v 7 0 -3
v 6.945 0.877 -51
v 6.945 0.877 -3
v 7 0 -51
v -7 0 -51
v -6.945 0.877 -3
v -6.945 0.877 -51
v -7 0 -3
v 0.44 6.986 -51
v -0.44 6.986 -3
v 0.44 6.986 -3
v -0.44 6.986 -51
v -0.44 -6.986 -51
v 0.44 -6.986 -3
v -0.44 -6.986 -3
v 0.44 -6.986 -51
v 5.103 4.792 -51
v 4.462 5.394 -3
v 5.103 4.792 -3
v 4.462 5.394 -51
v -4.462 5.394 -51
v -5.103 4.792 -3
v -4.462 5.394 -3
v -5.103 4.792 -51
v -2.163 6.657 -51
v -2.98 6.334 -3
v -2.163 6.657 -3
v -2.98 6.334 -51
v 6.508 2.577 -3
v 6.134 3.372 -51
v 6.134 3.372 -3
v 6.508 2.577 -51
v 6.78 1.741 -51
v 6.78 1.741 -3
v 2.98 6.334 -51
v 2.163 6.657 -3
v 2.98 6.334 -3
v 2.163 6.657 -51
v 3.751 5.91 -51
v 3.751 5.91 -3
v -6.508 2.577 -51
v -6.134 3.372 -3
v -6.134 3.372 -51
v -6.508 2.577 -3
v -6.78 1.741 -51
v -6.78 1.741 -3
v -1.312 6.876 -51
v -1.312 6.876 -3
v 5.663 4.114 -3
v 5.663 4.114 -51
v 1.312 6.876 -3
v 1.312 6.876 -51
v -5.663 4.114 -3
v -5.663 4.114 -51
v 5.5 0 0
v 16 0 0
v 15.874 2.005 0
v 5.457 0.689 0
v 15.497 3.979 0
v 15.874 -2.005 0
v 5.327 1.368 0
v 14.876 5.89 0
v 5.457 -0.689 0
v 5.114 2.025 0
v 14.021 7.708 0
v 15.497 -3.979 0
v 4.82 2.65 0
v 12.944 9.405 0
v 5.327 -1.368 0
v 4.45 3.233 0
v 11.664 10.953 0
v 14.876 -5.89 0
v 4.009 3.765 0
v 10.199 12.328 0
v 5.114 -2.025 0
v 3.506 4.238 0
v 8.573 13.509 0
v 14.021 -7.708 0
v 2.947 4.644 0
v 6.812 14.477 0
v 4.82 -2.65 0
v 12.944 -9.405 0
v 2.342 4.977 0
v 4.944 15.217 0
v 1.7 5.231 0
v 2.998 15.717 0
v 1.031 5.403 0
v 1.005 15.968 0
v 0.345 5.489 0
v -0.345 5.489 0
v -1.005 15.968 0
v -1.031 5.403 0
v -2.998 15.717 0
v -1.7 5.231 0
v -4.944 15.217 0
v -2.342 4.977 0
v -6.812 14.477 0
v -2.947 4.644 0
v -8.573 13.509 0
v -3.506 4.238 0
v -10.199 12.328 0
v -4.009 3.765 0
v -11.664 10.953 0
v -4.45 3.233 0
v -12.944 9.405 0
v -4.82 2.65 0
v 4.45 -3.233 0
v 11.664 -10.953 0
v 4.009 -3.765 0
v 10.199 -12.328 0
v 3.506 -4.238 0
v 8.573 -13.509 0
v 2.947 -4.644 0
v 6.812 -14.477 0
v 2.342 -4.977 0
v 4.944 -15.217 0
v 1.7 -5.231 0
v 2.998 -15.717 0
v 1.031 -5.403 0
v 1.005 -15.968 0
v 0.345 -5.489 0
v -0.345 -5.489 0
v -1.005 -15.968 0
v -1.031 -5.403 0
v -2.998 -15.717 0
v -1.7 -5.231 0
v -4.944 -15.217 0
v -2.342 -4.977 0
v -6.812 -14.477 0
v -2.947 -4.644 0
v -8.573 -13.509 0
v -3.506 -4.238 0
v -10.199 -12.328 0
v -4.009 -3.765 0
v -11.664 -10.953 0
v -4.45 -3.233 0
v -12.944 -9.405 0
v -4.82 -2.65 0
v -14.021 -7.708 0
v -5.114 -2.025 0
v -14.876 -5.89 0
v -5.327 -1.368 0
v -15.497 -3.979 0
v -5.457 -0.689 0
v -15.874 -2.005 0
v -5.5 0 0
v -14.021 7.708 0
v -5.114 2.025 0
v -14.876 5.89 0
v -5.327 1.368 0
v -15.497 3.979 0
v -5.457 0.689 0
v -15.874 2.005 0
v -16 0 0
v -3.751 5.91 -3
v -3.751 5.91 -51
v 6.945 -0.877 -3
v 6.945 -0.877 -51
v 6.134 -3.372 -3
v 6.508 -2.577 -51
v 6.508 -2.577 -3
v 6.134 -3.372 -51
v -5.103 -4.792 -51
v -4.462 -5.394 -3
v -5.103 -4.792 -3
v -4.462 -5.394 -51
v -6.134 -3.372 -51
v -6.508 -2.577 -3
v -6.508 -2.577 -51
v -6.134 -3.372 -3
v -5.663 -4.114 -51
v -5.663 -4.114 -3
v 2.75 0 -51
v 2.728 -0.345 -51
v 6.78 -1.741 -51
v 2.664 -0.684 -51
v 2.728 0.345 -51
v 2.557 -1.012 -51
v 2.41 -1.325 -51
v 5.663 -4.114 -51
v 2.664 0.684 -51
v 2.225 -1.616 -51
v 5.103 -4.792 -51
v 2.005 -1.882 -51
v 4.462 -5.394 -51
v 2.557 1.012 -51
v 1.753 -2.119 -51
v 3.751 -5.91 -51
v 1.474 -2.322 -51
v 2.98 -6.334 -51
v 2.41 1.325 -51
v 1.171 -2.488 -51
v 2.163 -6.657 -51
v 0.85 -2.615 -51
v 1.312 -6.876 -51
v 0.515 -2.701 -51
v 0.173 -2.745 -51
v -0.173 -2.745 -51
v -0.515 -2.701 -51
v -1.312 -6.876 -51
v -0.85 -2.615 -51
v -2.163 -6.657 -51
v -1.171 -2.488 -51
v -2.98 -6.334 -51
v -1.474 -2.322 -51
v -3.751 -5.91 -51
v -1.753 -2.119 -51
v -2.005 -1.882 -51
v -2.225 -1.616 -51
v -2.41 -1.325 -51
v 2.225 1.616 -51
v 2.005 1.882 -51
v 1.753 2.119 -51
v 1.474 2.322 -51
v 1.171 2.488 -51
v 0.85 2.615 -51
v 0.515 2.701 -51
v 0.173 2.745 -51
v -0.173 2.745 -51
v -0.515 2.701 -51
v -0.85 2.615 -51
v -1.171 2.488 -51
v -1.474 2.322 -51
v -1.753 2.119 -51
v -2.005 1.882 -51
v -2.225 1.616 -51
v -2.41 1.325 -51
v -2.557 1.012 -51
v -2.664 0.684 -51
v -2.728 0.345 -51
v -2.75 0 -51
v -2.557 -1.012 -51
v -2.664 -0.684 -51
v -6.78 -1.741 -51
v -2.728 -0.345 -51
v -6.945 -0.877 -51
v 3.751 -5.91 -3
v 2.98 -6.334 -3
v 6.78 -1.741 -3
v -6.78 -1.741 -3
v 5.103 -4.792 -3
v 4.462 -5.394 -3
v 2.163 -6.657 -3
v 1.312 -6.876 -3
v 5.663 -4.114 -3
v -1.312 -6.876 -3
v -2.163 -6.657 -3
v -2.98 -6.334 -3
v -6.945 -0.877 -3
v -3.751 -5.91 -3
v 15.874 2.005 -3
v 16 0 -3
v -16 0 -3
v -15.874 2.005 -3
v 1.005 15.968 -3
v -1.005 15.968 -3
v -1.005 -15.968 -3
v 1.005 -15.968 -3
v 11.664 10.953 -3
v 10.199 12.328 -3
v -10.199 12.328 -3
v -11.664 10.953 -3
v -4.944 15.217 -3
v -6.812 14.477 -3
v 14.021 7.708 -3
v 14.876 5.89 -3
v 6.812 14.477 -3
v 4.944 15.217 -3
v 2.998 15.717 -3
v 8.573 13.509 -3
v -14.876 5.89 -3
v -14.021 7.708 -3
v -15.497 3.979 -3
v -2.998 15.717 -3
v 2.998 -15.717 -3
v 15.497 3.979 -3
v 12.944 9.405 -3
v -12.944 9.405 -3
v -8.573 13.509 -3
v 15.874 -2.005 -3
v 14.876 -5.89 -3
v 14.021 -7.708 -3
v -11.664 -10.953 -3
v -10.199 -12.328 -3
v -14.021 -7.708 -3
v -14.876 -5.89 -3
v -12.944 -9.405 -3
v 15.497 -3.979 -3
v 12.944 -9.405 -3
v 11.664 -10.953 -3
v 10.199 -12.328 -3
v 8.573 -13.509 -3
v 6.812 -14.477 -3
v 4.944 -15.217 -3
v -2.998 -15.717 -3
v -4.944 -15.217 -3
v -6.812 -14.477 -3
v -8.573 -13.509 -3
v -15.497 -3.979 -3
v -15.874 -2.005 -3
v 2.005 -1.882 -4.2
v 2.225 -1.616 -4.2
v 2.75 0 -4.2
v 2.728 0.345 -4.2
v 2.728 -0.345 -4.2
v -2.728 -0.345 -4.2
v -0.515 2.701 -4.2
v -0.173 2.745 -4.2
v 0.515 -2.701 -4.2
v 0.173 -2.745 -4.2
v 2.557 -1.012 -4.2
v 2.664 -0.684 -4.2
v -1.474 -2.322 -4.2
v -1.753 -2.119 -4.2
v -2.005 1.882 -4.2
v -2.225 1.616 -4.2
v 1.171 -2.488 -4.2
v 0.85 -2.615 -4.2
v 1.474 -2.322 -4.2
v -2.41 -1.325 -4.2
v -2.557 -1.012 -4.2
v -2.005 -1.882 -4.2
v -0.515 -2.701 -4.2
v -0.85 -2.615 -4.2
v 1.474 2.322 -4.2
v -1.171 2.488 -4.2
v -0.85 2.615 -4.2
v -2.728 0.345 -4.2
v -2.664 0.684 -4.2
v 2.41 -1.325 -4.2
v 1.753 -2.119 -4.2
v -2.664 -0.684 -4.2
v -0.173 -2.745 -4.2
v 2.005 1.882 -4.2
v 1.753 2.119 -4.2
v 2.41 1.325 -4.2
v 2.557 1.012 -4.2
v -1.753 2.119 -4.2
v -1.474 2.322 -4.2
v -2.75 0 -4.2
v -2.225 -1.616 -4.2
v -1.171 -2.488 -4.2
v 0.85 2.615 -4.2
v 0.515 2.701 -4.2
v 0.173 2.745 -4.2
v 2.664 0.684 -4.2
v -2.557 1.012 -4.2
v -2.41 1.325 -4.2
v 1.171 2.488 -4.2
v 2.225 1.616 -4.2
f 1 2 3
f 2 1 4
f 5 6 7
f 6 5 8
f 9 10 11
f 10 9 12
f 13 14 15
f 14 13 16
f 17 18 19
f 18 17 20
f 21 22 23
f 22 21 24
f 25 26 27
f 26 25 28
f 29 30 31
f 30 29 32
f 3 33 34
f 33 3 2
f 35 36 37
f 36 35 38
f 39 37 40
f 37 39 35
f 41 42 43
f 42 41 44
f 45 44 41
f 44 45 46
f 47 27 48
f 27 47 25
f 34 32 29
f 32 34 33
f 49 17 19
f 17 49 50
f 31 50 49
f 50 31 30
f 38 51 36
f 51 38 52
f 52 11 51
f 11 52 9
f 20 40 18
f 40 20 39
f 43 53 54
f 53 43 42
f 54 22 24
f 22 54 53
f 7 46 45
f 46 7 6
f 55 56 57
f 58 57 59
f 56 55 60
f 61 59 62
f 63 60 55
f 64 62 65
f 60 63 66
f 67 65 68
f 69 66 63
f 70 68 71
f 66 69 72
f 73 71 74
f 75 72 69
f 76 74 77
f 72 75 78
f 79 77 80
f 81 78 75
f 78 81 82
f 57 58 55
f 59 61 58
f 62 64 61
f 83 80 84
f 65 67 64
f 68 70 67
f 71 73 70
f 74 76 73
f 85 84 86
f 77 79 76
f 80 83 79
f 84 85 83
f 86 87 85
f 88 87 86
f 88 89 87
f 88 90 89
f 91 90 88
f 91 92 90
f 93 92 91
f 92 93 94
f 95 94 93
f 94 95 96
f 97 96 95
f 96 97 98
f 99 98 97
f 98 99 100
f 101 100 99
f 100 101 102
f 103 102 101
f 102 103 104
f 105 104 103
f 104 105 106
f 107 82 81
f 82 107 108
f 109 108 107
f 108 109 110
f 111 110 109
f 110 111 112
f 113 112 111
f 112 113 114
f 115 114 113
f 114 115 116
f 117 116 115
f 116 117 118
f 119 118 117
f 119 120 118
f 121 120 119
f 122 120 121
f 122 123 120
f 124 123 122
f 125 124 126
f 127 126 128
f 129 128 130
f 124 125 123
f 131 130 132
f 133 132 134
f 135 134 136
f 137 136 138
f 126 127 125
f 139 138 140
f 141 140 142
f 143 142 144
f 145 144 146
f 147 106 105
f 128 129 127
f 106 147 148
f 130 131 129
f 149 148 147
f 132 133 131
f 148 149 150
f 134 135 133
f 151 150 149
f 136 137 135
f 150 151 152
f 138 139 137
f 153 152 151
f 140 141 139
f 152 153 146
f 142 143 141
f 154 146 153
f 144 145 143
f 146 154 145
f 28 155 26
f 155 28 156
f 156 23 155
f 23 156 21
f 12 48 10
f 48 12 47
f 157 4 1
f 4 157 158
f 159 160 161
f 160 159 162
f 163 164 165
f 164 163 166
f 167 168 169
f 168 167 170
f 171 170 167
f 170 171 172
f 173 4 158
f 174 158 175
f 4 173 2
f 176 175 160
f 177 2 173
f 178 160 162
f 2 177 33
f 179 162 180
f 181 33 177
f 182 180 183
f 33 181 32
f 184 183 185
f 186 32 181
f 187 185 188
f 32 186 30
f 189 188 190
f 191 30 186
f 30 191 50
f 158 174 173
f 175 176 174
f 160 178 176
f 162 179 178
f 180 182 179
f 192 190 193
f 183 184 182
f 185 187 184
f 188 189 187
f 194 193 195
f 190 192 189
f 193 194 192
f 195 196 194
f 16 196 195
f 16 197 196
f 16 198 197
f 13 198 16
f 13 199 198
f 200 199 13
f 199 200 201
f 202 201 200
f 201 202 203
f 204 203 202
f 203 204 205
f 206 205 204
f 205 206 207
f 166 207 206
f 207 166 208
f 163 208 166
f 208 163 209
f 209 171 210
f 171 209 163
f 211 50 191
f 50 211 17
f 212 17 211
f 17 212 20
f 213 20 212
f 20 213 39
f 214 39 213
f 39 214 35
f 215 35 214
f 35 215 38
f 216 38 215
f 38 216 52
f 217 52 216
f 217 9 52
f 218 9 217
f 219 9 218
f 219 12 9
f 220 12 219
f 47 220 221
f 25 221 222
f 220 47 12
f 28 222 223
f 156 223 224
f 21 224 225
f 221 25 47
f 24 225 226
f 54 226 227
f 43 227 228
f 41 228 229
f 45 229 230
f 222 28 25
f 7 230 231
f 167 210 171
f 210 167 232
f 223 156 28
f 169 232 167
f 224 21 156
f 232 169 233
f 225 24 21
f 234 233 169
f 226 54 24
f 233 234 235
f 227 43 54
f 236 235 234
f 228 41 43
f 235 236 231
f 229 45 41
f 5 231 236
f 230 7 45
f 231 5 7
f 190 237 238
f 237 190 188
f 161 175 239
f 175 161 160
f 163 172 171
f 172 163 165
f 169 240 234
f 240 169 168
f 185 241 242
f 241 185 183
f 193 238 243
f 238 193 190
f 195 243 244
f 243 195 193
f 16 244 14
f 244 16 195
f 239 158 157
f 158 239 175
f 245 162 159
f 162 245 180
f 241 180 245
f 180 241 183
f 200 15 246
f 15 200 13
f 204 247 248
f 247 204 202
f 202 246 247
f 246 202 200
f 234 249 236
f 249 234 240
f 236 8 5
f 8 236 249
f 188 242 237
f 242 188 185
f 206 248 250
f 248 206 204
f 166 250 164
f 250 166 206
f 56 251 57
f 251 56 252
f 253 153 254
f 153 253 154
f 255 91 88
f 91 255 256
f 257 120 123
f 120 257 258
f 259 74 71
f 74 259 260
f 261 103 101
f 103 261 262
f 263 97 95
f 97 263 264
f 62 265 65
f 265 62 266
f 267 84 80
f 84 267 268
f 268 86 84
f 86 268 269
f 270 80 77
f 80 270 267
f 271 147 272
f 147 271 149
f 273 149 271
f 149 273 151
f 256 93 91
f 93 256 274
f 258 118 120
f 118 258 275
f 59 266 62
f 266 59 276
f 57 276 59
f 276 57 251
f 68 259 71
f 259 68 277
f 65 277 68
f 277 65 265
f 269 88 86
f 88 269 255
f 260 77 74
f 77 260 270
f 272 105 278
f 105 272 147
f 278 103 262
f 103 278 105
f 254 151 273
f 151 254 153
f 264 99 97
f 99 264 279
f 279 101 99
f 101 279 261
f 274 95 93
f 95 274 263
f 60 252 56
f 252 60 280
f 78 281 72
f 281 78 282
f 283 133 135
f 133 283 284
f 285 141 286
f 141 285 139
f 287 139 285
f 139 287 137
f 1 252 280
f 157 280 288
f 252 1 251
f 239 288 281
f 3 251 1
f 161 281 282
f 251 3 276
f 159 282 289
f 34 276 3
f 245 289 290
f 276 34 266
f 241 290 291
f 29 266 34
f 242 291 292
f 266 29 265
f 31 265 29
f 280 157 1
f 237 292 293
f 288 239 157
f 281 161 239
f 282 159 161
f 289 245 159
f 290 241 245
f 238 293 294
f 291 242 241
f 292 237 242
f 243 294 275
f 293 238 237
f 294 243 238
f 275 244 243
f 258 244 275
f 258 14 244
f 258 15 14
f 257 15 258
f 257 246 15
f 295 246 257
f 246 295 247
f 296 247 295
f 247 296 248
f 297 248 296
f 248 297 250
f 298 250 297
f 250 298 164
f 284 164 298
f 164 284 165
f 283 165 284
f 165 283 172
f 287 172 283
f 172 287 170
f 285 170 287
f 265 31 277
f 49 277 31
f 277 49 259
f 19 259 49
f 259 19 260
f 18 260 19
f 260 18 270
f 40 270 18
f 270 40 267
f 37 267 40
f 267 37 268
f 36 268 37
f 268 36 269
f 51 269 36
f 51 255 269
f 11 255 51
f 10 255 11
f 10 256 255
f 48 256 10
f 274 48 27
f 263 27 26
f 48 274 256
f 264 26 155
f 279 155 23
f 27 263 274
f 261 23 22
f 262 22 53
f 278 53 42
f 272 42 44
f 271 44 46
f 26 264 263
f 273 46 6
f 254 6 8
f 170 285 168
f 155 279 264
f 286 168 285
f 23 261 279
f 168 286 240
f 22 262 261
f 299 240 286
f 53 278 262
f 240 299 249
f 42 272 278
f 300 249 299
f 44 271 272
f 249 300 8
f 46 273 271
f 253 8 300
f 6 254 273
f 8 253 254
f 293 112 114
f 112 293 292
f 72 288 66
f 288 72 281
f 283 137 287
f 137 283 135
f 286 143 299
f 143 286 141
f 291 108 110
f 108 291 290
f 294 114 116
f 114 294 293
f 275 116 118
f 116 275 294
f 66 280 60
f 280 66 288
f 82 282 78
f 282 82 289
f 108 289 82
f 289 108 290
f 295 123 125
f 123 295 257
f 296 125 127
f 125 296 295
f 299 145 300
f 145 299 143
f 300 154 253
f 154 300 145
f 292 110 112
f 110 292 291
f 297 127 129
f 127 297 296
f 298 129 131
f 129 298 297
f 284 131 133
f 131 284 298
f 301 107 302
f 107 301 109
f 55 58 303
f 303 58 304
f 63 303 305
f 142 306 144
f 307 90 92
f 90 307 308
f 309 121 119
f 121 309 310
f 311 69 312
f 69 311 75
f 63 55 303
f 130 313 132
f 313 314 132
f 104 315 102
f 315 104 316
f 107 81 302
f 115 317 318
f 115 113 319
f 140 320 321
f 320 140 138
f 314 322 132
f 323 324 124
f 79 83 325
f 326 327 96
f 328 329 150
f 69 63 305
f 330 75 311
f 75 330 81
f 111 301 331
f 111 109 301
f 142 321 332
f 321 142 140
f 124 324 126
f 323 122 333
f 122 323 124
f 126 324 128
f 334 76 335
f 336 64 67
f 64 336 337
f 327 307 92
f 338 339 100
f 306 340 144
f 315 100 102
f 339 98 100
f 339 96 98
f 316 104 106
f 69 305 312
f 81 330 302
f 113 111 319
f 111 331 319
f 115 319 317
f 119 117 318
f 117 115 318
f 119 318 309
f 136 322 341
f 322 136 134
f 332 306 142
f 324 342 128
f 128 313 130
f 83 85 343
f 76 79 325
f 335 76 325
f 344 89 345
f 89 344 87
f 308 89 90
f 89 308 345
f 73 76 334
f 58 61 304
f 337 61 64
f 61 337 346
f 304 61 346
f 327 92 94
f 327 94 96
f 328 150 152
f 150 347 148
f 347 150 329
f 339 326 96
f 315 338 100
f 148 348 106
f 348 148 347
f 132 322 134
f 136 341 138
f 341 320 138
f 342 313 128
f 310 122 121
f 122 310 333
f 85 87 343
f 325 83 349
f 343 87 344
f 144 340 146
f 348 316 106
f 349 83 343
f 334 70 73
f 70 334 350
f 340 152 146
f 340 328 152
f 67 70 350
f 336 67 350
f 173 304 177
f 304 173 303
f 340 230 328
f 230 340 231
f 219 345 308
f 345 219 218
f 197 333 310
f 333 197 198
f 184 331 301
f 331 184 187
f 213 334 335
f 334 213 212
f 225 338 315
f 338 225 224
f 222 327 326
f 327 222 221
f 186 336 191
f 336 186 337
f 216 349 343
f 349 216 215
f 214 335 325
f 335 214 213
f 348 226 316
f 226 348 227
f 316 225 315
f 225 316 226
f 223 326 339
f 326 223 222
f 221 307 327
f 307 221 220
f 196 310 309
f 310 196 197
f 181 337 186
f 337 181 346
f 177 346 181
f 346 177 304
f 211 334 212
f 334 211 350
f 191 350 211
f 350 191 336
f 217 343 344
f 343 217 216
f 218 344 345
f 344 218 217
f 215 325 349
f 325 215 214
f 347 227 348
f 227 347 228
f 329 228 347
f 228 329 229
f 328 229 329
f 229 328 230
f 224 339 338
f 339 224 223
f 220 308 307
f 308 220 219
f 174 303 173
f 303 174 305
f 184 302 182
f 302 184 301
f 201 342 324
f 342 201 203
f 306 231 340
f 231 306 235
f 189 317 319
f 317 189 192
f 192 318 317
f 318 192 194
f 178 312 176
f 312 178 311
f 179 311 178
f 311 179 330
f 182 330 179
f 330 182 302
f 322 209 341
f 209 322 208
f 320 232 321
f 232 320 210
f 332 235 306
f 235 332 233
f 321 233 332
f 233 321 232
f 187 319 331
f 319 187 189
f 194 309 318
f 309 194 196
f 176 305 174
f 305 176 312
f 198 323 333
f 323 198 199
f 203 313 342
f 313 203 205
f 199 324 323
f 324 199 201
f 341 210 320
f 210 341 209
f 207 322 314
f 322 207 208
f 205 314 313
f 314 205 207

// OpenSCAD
$fn = 50;


difference() {
	union() {
		translate(v = [0, 0, -51.0000000000]) {
			cylinder(h = 51, r = 7.0000000000);
		}
		translate(v = [0, 0, -3.0000000000]) {
			cylinder(h = 3, r = 16.0000000000);
		}
	}
	union() {
		translate(v = [0, 0, 0]) {
			rotate(a = [0, 0, 0]) {
				difference() {
					union() {
						#translate(v = [0, 0, -51.0000000000]) {
							cylinder(h = 51, r = 2.2500000000);
						}
						#translate(v = [0, 0, -4.2000000000]) {
							cylinder(h = 4.2000000000, r = 7.0000000000, r1 = 2.7500000000, r2 = 5.5000000000);
						}
						#translate(v = [0, 0, -51.0000000000]) {
							cylinder(h = 51, r = 2.7500000000);
						}
						#translate(v = [0, 0, -51.0000000000]) {
							cylinder(h = 51, r = 2.2500000000);
						}
					}
					union();
				}
			}
		}
	}
}
